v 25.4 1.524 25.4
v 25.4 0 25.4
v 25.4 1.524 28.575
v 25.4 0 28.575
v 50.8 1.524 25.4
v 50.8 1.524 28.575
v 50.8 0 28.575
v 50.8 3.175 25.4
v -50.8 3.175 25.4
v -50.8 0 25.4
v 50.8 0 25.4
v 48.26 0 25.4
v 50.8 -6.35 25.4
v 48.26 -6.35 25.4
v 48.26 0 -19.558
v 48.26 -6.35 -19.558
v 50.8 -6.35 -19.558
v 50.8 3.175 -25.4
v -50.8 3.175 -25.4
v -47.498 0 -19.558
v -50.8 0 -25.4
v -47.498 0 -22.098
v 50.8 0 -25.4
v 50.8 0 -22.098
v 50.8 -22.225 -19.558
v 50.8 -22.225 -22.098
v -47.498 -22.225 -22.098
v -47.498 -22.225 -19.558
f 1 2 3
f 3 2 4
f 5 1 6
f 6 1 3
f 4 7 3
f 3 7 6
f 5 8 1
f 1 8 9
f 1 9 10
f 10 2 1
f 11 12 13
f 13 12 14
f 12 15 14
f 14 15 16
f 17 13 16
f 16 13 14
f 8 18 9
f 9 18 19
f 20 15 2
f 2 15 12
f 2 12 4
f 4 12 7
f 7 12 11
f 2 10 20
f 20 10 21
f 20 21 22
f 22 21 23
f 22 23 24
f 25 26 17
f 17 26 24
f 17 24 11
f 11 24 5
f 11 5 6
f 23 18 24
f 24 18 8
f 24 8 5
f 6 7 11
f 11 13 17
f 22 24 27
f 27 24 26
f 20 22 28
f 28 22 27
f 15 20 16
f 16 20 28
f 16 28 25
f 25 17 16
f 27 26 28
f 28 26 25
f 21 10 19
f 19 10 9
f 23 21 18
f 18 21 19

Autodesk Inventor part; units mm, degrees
ref_plane "YZ Plane" through (0, 0, 0) normal (1, 0, 0) x (0, 1, 0)
ref_plane "XZ Plane" through (0, 0, 0) normal (0, 1, 0) x (-1, 0, 0)
ref_plane "XY Plane" through (0, 0, 0) normal (0, 0, 1) x (1, 0, 0)
sketch "Sketch1" plane through (0, 0, 0) normal (0, 1, 0) x (-1, 0, 0)
  line L0 (50.8, 25.4) -> (-50.8, 25.4)
  line L1 (-50.8, 25.4) -> (-50.8, -25.4)
  line L2 (-50.8, -25.4) -> (50.8, -25.4)
  line L3 (50.8, -25.4) -> (50.8, 25.4)
  line L4 (50.8, 25.4) -> (-50.8, -25.4) construction
  line L5 (-50.8, 25.4) -> (50.8, -25.4) construction
  point P0 (0, 0)
  dimension "d0" = 101.6
  dimension "d1" = 50.8
extrude "Extrusion1" add sketch "Sketch1" along normal blind 3.175
sketch "Sketch3" plane through (0, 3.175, 0) normal (0, 1, 0) x (1, 0, 0)
  line L0 (50.8, 25.4) -> (-50.8, 25.4) projected
  line L1 (0, 25.4) -> (0, 22.098) construction
  line L2 (-50.8, 25.4) -> (-50.8, -25.4) construction
  line L3 (-50.8, 25.4) -> (-50.8, -25.4) construction
  line L4 (-50.8, 25.4) -> (-47.498, 25.4) construction
  line L5 (-47.498, 25.4) -> (-47.498, -25.4) construction
  line L6 (-50.8, -25.4) -> (50.8, -25.4) construction
  line L7 (-47.498, 22.098) -> (50.8, 22.098) construction
  line L8 (50.8, -25.4) -> (50.8, 25.4) projected
  line L9 (-47.498, 22.098) -> (50.8, 22.098)
  line L10 (50.8, 22.098) -> (50.8, 19.558)
  line L11 (50.8, 19.558) -> (-47.498, 19.558)
  line L12 (-47.498, 19.558) -> (-47.498, 22.098)
  point P0 (0, 0)
  dimension "d8" = 3.302
  dimension "d9" = 3.302
  dimension "d10" = 2.54
extrude "Extrusion3" add sketch "Sketch3" against normal blind 25.4
sketch "Sketch4" plane through (0, 3.175, 0) normal (0, 1, 0) x (1, 0, 0)
  line L0 (50.8, 19.558) -> (-47.498, 19.558) projected
  line L1 (-50.8, -25.4) -> (50.8, -25.4) projected
  line L2 (50.8, 19.558) -> (48.26, 19.558)
  line L3 (48.26, 19.558) -> (48.26, -25.4)
  line L4 (48.26, -25.4) -> (50.8, -25.4)
  line L5 (50.8, -25.4) -> (50.8, 19.558)
  point P0 (0, 0)
  dimension "d13" = 2.54
extrude "Extrusion4" add sketch "Sketch4" against normal blind 9.525
sketch "Sketch5" plane through (-50.8, 3.175, 25.4) normal (0, 0, 1) x (1, 0, 0)
  line L0 (101.6, -3.175) -> (0, -3.175) projected
  line L1 (101.6, -3.175) -> (76.2, -3.175)
  line L2 (76.2, -3.175) -> (76.2, -1.651)
  line L3 (76.2, -1.651) -> (101.6, -1.651)
  line L4 (101.6, -1.651) -> (101.6, -3.175)
  point P0 (50.8, -3.175)
  dimension "d16" = 25.4
  dimension "d17" = 1.524
extrude "Extrusion5" add sketch "Sketch5" along normal blind 3.175
properties part number "Wire Housing Wall vglue"
